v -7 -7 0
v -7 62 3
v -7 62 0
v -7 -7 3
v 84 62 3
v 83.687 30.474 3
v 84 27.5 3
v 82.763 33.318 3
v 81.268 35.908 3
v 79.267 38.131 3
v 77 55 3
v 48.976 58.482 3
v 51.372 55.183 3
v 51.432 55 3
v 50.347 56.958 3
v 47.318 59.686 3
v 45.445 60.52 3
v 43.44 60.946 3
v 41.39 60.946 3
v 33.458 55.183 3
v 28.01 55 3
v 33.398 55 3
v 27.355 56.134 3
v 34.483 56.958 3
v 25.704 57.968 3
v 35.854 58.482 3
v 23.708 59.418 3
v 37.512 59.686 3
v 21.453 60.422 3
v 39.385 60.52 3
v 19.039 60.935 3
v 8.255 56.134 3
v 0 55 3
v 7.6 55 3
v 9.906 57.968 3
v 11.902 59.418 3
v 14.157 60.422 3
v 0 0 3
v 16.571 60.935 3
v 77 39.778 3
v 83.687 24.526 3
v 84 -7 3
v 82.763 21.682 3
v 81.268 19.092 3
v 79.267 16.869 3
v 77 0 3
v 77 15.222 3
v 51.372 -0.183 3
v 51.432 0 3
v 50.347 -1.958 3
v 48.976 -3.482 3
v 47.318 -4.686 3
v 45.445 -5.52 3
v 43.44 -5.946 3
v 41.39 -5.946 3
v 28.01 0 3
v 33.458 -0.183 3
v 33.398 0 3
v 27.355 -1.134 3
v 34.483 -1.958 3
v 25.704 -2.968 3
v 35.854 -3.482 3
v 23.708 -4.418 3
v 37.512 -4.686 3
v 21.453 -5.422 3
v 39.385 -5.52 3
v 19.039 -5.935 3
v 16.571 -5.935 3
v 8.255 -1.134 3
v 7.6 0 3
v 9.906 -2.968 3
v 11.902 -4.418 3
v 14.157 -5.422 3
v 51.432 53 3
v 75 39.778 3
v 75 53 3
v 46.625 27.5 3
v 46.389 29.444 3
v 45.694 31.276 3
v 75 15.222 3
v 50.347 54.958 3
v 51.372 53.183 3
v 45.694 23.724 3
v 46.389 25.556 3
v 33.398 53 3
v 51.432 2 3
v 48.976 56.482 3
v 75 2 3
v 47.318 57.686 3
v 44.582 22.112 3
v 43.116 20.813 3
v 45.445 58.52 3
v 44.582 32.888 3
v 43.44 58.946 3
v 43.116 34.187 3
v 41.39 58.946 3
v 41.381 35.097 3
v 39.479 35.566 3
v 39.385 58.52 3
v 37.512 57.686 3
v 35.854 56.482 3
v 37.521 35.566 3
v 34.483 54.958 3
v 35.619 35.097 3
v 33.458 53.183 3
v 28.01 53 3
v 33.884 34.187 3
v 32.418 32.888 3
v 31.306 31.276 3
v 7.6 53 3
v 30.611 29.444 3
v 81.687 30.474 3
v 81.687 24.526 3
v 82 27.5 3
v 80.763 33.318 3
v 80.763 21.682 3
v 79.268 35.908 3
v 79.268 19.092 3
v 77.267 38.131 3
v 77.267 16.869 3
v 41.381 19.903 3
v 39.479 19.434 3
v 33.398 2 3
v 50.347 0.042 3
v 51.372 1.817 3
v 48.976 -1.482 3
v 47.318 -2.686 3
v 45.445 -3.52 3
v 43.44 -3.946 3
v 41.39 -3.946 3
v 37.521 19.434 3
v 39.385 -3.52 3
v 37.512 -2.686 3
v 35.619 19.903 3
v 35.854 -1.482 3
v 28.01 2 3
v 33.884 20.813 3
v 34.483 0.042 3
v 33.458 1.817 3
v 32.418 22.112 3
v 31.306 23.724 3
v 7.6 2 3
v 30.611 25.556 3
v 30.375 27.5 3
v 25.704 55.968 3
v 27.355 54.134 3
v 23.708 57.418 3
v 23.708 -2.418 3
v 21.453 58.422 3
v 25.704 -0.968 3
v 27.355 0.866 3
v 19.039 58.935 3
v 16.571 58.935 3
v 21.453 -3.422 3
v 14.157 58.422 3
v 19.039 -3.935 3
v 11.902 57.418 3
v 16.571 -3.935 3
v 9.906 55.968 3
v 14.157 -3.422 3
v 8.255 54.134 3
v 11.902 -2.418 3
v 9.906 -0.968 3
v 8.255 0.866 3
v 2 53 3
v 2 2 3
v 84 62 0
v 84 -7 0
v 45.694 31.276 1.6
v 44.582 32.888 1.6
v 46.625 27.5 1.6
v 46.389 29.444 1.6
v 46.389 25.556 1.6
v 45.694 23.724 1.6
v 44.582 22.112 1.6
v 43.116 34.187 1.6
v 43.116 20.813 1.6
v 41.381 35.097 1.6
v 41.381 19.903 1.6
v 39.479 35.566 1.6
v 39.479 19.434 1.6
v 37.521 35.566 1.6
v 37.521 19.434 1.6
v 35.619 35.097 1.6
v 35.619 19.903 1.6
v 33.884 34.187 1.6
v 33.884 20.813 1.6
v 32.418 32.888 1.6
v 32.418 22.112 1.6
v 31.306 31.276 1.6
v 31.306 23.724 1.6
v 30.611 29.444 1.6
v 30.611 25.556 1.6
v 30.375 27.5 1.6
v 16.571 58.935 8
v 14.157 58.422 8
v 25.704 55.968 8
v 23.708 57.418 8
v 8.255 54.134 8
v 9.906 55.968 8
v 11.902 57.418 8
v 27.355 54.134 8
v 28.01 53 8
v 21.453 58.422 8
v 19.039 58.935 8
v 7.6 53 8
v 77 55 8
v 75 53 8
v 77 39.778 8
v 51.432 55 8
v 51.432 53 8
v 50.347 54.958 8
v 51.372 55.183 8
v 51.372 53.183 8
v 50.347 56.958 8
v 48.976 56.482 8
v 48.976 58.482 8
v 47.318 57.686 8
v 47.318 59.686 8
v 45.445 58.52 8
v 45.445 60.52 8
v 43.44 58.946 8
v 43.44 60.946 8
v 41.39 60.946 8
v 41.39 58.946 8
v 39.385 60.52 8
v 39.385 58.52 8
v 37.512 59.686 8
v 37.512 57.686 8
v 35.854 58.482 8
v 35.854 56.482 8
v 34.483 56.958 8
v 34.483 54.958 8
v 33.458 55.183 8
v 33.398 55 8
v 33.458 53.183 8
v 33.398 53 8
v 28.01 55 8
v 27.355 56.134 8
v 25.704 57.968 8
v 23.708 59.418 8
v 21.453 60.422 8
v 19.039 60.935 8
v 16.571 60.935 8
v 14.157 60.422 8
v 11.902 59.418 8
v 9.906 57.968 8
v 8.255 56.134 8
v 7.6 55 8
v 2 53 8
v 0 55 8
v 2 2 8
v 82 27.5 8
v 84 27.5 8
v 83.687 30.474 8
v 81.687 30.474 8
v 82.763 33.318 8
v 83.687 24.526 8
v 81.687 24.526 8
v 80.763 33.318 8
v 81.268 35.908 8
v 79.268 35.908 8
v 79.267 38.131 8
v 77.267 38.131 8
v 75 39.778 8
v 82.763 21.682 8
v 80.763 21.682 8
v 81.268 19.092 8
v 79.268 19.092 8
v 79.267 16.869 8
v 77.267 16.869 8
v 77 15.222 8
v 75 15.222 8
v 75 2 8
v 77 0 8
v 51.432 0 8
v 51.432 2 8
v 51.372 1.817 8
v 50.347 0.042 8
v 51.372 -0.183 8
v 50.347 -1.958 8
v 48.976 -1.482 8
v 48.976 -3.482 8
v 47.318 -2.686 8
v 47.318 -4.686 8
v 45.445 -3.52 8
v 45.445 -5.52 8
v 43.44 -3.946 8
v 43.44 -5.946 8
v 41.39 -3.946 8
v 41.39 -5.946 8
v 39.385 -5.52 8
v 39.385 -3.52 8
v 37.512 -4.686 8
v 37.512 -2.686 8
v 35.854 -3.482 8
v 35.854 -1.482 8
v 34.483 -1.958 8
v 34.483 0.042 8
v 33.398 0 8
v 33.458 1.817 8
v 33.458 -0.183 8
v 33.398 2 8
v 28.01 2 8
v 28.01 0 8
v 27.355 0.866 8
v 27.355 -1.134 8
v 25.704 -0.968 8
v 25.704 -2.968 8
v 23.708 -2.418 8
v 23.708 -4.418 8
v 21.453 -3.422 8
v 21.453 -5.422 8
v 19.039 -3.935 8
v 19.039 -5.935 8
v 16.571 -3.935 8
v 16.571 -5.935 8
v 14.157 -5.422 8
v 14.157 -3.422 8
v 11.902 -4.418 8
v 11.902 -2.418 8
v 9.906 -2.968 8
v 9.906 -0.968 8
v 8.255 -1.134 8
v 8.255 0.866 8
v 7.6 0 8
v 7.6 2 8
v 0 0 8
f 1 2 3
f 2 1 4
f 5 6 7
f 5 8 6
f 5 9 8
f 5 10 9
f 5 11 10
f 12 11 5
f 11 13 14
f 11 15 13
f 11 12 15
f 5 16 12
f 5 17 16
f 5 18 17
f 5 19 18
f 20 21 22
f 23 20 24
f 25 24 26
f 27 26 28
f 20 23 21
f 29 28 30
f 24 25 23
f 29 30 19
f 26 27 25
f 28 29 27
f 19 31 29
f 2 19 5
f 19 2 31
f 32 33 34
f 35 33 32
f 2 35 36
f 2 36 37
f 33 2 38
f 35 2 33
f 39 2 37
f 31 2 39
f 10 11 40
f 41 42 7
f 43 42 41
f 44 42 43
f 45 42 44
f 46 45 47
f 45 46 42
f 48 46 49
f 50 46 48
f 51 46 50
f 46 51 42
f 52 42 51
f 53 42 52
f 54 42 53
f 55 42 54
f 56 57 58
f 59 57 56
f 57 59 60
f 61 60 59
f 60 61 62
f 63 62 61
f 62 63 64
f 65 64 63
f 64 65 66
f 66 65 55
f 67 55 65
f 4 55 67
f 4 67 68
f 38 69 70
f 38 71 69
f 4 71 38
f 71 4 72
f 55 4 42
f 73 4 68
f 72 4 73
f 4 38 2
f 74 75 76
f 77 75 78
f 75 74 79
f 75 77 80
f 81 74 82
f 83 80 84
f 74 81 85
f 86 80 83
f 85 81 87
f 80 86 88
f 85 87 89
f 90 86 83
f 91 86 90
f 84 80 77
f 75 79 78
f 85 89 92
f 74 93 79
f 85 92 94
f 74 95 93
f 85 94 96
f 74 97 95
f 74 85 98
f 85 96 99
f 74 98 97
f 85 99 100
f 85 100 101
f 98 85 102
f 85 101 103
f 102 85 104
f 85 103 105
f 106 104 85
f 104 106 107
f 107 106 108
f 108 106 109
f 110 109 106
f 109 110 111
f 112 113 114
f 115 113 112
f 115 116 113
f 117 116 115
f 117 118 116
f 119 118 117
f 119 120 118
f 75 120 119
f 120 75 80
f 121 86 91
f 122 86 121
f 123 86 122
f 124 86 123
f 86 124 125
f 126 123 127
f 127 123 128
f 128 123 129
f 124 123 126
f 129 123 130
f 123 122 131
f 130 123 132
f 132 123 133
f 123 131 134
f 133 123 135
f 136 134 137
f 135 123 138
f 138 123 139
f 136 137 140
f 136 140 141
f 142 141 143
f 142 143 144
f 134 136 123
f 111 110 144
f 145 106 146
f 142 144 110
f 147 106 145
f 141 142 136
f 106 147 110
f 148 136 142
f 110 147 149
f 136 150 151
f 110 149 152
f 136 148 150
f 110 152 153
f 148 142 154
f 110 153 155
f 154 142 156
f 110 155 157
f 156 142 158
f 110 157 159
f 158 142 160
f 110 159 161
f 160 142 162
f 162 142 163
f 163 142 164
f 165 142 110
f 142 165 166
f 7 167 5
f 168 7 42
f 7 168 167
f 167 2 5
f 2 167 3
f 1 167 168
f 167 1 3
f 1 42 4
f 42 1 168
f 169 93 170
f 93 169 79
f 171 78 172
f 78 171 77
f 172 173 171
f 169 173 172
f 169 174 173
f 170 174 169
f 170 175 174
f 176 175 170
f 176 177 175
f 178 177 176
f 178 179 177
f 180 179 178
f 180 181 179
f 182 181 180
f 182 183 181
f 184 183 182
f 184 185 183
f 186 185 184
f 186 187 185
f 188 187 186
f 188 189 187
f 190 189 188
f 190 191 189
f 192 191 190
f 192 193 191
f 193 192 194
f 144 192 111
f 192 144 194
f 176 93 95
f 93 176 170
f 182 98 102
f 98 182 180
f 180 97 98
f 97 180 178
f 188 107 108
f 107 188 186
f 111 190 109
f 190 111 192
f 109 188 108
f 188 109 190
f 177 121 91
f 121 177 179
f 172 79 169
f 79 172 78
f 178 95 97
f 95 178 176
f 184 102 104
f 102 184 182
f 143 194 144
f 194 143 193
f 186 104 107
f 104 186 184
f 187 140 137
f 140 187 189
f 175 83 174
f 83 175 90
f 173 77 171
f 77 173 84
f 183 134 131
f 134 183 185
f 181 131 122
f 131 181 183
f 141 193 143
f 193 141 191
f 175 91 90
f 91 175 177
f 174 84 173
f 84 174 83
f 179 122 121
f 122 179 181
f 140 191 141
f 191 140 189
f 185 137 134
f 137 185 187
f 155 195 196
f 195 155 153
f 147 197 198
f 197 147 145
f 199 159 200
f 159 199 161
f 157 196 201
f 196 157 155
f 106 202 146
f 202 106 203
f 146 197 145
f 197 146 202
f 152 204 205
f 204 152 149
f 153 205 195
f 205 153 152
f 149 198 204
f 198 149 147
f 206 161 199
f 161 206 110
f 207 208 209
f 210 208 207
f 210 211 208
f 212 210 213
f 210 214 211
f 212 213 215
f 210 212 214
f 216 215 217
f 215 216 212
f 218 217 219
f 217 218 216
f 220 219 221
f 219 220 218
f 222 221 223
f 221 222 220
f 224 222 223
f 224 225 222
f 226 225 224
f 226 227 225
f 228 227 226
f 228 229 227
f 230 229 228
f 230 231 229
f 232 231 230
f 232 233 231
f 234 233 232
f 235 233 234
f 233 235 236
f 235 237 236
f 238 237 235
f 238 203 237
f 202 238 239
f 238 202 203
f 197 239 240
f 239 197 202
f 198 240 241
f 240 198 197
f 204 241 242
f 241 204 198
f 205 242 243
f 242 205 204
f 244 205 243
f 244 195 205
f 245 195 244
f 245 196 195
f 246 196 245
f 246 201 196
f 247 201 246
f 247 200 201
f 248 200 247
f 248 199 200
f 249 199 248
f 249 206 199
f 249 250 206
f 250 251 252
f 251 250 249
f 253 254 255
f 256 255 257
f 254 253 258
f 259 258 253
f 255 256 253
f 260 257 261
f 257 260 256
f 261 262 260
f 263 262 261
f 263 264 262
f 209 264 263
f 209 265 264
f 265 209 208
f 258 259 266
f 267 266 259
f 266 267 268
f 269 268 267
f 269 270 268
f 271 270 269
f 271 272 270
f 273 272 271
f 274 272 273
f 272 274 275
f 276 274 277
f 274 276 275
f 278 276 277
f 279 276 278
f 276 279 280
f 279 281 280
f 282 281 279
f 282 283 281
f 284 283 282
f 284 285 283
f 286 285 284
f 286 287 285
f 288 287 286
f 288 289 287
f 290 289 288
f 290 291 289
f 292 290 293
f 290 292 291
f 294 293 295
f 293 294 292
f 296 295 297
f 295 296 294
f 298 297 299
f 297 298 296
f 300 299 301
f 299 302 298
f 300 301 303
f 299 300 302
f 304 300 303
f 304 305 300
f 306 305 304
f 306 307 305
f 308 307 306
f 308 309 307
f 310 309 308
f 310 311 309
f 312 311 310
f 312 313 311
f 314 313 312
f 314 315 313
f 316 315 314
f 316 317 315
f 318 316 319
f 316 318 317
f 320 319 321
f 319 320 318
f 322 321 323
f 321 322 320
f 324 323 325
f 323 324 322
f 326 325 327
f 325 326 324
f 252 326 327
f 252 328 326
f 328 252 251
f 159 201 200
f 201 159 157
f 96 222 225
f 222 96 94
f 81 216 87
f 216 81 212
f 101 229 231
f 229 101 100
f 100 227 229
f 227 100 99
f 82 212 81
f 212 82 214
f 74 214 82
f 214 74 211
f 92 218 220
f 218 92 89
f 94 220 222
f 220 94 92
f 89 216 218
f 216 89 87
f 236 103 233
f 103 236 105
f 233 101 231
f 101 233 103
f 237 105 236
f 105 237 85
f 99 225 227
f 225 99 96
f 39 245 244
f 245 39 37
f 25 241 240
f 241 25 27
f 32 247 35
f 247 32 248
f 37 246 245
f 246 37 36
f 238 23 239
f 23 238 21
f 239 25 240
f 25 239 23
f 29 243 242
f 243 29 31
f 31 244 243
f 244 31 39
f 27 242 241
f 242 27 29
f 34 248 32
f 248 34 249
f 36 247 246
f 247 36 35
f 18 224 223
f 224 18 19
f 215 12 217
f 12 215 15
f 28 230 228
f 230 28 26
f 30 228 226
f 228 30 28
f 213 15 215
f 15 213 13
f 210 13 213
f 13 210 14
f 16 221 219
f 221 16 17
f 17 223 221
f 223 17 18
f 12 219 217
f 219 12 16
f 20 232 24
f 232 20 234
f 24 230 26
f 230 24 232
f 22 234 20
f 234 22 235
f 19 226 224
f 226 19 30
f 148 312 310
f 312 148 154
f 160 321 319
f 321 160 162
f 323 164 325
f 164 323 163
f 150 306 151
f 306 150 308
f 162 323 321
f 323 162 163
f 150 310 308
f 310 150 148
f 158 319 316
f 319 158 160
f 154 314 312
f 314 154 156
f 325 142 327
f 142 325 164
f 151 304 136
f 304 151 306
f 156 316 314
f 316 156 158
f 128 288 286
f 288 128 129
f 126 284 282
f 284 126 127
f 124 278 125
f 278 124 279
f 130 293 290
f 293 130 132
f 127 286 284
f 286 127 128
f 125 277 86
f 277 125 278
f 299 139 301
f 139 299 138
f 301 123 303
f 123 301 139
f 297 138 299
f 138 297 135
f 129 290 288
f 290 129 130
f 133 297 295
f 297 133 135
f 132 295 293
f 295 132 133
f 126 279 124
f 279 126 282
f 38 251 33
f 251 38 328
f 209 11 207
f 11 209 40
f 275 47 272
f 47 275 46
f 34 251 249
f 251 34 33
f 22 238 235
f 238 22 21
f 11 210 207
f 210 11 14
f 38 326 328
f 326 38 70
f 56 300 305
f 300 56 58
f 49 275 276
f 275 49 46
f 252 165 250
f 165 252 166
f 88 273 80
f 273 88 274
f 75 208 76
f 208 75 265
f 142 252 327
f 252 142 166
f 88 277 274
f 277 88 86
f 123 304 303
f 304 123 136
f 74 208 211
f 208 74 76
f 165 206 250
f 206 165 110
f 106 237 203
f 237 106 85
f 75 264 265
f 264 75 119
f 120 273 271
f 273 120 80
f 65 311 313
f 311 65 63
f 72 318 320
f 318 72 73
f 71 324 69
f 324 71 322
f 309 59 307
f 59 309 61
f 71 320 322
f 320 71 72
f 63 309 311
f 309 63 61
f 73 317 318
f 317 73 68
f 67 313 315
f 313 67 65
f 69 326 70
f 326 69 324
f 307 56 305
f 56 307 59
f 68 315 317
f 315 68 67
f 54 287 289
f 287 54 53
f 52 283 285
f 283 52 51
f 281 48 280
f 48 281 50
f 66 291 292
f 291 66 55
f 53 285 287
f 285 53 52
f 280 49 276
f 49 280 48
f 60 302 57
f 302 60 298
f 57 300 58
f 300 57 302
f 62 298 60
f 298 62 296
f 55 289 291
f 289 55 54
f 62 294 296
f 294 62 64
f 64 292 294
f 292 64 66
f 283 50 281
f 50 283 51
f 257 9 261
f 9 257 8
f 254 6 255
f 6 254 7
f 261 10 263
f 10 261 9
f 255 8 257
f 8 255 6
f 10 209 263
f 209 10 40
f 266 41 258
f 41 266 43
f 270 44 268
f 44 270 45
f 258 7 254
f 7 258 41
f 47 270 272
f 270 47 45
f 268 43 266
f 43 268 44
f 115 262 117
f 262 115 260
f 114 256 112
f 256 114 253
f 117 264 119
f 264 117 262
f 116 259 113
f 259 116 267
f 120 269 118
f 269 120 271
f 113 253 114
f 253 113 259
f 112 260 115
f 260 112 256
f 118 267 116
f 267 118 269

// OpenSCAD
length = 72;
width = 50;
height = 3;
rimHeight = 5;
rimThickness = 2;
notchLength = 25;
//Based on washer size:
washerDiameter = 16.25;
washerHeight = 1.4;
rimPadding = 1;
totalHeight = height + rimHeight;

totalLength = length + rimThickness * 2 + rimPadding;
totalWidth = width + rimThickness * 2 + rimPadding;
extraLidForCircles = 7;

smallCircleDiameter = 19.11 + .5;
smallCircleOffset = 4;

mediumCircleDiameter = 23.11 + .5;
mediumCircleOffset = 4;

largeCircleDiameter = 28.11 + .5;
largeCircleOffset = 5;

union()
{
    difference() {
        translate([-extraLidForCircles, -extraLidForCircles, 0])
            cube([totalLength + 2 * extraLidForCircles, totalWidth + 2 * extraLidForCircles, height]);
        translate([totalLength/2, totalWidth/2, height - washerHeight])
            cylinder(washerHeight, d=washerDiameter);
    }
    
    difference() {
        translate([0, 0, height])
            cube([totalLength, totalWidth, rimHeight]);
        translate([rimThickness, rimThickness, height])
            cube([length + rimPadding, width + rimPadding, rimHeight]);
        RightLengthCircles();
        LeftLengthCircles();
        WidthCircles();
    }
    
    difference(){
        union()
        {
            translate([0, -rimThickness, 0])
                LeftLengthCircles();
            translate([0, rimThickness, 0])
                RightLengthCircles();
            translate([rimThickness, 0, 0])
                WidthCircles();
        }
        translate([0, 0, height])
            cube([totalLength, totalWidth, rimHeight]);
        RightLengthCircles();
        LeftLengthCircles();
        WidthCircles();
    }
}


module LeftLengthCircles()
{
    spaceBetweenCircles = 3;
    translate([mediumCircleDiameter/2 + spaceBetweenCircles + rimThickness + rimPadding, mediumCircleDiameter/2 - mediumCircleOffset, height])
        cylinder(rimHeight, d=mediumCircleDiameter);

    translate([mediumCircleDiameter + spaceBetweenCircles * 2 + smallCircleDiameter/2 + rimThickness + rimPadding, smallCircleDiameter/2 - smallCircleOffset, height])
        cylinder(rimHeight, d=smallCircleDiameter);
}

module RightLengthCircles()
{
    spaceBetweenCircles = 3;
    translate([mediumCircleDiameter/2 + spaceBetweenCircles + rimThickness + rimPadding, totalWidth - (mediumCircleDiameter/2 - mediumCircleOffset), height])
        cylinder(rimHeight, d=mediumCircleDiameter);

    translate([mediumCircleDiameter + spaceBetweenCircles * 2 + smallCircleDiameter/2 + rimThickness + rimPadding, totalWidth - (smallCircleDiameter/2 - smallCircleOffset), height])
        cylinder(rimHeight, d=smallCircleDiameter);
}

module WidthCircles()
{
    
    translate([totalLength - (largeCircleDiameter/2 - largeCircleOffset), totalWidth/2, height])
        cylinder(rimHeight, d=largeCircleDiameter);
}
